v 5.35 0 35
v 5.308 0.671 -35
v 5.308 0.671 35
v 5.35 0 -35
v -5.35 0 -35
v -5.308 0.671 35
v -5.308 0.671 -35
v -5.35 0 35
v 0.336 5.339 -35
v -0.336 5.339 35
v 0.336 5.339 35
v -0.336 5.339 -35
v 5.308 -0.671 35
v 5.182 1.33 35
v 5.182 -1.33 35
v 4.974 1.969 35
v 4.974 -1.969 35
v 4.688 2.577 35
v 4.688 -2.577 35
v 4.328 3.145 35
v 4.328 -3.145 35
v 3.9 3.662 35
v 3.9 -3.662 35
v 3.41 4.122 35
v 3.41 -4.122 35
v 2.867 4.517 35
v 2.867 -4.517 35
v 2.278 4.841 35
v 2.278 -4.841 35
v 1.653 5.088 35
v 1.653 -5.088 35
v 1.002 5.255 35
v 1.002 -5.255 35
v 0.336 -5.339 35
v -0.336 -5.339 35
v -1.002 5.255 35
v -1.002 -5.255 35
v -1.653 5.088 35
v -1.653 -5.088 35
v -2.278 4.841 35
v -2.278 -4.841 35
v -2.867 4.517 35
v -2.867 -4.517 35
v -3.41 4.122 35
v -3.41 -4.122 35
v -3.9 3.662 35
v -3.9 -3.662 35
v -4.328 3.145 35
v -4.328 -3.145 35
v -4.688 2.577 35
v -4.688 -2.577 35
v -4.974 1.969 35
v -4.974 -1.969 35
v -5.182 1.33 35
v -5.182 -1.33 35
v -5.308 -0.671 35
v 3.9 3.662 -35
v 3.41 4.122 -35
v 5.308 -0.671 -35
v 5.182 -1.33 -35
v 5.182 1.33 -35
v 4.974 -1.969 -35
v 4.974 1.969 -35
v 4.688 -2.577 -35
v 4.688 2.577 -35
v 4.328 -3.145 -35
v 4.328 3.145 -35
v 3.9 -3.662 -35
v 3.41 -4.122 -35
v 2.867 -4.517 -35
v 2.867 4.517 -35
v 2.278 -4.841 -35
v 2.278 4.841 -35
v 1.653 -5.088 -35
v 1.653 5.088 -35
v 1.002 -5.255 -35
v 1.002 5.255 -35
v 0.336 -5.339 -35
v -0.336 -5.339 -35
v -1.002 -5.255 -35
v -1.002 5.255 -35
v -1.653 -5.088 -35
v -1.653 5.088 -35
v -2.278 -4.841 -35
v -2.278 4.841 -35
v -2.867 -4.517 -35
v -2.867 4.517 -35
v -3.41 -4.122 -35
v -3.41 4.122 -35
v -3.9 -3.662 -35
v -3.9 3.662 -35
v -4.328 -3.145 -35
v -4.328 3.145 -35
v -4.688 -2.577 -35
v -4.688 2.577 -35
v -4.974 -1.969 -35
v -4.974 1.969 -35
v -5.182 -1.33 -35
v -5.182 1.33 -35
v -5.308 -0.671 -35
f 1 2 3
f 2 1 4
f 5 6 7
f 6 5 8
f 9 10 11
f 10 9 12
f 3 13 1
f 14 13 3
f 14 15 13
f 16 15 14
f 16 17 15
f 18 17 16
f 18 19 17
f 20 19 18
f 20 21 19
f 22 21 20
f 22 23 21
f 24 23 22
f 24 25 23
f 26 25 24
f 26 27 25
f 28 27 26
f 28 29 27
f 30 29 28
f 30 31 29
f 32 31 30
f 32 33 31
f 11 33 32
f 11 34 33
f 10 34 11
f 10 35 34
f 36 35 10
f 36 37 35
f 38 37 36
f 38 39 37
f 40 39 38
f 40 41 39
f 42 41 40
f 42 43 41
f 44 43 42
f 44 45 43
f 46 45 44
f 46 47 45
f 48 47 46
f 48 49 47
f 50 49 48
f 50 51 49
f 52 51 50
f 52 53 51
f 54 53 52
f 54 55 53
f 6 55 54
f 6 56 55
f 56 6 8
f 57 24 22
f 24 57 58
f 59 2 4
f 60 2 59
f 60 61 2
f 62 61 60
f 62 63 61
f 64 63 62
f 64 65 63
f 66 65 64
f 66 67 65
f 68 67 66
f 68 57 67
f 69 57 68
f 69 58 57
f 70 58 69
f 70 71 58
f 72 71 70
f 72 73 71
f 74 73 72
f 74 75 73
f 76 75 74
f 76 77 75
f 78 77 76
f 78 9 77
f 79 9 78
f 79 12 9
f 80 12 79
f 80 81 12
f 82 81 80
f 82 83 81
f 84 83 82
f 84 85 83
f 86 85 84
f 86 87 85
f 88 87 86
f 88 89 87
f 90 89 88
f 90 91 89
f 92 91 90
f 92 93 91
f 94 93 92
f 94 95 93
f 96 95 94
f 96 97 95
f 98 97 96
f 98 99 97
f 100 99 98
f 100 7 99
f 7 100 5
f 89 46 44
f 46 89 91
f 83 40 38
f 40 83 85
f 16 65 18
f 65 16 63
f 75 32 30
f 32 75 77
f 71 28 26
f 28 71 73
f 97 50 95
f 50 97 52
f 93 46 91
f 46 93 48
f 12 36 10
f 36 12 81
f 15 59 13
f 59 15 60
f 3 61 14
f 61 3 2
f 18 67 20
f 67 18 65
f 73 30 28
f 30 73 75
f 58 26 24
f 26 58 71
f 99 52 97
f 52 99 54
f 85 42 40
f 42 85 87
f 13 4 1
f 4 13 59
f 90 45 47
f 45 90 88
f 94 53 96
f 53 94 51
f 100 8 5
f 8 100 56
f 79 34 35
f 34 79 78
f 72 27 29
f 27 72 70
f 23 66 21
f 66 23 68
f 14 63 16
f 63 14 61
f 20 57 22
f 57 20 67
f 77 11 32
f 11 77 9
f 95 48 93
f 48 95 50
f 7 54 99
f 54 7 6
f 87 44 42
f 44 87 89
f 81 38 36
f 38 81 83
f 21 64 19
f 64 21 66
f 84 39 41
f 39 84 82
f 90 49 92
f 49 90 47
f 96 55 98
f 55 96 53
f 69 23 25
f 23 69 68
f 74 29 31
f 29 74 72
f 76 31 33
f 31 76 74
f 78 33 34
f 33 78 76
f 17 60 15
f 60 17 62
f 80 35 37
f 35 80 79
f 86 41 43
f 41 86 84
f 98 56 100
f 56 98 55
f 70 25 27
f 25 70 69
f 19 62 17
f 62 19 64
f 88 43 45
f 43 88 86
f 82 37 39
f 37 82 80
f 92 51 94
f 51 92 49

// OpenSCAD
$fn = 50;


difference() {
	union() {
		translate(v = [0, 0, -35.0000000000]) {
			cylinder(h = 70, r = 5.3500000000);
		}
	}
	union() {
		translate(v = [0, 0, -100.0000000000]) {
			cylinder(h = 200, r = 0);
		}
	}
}
